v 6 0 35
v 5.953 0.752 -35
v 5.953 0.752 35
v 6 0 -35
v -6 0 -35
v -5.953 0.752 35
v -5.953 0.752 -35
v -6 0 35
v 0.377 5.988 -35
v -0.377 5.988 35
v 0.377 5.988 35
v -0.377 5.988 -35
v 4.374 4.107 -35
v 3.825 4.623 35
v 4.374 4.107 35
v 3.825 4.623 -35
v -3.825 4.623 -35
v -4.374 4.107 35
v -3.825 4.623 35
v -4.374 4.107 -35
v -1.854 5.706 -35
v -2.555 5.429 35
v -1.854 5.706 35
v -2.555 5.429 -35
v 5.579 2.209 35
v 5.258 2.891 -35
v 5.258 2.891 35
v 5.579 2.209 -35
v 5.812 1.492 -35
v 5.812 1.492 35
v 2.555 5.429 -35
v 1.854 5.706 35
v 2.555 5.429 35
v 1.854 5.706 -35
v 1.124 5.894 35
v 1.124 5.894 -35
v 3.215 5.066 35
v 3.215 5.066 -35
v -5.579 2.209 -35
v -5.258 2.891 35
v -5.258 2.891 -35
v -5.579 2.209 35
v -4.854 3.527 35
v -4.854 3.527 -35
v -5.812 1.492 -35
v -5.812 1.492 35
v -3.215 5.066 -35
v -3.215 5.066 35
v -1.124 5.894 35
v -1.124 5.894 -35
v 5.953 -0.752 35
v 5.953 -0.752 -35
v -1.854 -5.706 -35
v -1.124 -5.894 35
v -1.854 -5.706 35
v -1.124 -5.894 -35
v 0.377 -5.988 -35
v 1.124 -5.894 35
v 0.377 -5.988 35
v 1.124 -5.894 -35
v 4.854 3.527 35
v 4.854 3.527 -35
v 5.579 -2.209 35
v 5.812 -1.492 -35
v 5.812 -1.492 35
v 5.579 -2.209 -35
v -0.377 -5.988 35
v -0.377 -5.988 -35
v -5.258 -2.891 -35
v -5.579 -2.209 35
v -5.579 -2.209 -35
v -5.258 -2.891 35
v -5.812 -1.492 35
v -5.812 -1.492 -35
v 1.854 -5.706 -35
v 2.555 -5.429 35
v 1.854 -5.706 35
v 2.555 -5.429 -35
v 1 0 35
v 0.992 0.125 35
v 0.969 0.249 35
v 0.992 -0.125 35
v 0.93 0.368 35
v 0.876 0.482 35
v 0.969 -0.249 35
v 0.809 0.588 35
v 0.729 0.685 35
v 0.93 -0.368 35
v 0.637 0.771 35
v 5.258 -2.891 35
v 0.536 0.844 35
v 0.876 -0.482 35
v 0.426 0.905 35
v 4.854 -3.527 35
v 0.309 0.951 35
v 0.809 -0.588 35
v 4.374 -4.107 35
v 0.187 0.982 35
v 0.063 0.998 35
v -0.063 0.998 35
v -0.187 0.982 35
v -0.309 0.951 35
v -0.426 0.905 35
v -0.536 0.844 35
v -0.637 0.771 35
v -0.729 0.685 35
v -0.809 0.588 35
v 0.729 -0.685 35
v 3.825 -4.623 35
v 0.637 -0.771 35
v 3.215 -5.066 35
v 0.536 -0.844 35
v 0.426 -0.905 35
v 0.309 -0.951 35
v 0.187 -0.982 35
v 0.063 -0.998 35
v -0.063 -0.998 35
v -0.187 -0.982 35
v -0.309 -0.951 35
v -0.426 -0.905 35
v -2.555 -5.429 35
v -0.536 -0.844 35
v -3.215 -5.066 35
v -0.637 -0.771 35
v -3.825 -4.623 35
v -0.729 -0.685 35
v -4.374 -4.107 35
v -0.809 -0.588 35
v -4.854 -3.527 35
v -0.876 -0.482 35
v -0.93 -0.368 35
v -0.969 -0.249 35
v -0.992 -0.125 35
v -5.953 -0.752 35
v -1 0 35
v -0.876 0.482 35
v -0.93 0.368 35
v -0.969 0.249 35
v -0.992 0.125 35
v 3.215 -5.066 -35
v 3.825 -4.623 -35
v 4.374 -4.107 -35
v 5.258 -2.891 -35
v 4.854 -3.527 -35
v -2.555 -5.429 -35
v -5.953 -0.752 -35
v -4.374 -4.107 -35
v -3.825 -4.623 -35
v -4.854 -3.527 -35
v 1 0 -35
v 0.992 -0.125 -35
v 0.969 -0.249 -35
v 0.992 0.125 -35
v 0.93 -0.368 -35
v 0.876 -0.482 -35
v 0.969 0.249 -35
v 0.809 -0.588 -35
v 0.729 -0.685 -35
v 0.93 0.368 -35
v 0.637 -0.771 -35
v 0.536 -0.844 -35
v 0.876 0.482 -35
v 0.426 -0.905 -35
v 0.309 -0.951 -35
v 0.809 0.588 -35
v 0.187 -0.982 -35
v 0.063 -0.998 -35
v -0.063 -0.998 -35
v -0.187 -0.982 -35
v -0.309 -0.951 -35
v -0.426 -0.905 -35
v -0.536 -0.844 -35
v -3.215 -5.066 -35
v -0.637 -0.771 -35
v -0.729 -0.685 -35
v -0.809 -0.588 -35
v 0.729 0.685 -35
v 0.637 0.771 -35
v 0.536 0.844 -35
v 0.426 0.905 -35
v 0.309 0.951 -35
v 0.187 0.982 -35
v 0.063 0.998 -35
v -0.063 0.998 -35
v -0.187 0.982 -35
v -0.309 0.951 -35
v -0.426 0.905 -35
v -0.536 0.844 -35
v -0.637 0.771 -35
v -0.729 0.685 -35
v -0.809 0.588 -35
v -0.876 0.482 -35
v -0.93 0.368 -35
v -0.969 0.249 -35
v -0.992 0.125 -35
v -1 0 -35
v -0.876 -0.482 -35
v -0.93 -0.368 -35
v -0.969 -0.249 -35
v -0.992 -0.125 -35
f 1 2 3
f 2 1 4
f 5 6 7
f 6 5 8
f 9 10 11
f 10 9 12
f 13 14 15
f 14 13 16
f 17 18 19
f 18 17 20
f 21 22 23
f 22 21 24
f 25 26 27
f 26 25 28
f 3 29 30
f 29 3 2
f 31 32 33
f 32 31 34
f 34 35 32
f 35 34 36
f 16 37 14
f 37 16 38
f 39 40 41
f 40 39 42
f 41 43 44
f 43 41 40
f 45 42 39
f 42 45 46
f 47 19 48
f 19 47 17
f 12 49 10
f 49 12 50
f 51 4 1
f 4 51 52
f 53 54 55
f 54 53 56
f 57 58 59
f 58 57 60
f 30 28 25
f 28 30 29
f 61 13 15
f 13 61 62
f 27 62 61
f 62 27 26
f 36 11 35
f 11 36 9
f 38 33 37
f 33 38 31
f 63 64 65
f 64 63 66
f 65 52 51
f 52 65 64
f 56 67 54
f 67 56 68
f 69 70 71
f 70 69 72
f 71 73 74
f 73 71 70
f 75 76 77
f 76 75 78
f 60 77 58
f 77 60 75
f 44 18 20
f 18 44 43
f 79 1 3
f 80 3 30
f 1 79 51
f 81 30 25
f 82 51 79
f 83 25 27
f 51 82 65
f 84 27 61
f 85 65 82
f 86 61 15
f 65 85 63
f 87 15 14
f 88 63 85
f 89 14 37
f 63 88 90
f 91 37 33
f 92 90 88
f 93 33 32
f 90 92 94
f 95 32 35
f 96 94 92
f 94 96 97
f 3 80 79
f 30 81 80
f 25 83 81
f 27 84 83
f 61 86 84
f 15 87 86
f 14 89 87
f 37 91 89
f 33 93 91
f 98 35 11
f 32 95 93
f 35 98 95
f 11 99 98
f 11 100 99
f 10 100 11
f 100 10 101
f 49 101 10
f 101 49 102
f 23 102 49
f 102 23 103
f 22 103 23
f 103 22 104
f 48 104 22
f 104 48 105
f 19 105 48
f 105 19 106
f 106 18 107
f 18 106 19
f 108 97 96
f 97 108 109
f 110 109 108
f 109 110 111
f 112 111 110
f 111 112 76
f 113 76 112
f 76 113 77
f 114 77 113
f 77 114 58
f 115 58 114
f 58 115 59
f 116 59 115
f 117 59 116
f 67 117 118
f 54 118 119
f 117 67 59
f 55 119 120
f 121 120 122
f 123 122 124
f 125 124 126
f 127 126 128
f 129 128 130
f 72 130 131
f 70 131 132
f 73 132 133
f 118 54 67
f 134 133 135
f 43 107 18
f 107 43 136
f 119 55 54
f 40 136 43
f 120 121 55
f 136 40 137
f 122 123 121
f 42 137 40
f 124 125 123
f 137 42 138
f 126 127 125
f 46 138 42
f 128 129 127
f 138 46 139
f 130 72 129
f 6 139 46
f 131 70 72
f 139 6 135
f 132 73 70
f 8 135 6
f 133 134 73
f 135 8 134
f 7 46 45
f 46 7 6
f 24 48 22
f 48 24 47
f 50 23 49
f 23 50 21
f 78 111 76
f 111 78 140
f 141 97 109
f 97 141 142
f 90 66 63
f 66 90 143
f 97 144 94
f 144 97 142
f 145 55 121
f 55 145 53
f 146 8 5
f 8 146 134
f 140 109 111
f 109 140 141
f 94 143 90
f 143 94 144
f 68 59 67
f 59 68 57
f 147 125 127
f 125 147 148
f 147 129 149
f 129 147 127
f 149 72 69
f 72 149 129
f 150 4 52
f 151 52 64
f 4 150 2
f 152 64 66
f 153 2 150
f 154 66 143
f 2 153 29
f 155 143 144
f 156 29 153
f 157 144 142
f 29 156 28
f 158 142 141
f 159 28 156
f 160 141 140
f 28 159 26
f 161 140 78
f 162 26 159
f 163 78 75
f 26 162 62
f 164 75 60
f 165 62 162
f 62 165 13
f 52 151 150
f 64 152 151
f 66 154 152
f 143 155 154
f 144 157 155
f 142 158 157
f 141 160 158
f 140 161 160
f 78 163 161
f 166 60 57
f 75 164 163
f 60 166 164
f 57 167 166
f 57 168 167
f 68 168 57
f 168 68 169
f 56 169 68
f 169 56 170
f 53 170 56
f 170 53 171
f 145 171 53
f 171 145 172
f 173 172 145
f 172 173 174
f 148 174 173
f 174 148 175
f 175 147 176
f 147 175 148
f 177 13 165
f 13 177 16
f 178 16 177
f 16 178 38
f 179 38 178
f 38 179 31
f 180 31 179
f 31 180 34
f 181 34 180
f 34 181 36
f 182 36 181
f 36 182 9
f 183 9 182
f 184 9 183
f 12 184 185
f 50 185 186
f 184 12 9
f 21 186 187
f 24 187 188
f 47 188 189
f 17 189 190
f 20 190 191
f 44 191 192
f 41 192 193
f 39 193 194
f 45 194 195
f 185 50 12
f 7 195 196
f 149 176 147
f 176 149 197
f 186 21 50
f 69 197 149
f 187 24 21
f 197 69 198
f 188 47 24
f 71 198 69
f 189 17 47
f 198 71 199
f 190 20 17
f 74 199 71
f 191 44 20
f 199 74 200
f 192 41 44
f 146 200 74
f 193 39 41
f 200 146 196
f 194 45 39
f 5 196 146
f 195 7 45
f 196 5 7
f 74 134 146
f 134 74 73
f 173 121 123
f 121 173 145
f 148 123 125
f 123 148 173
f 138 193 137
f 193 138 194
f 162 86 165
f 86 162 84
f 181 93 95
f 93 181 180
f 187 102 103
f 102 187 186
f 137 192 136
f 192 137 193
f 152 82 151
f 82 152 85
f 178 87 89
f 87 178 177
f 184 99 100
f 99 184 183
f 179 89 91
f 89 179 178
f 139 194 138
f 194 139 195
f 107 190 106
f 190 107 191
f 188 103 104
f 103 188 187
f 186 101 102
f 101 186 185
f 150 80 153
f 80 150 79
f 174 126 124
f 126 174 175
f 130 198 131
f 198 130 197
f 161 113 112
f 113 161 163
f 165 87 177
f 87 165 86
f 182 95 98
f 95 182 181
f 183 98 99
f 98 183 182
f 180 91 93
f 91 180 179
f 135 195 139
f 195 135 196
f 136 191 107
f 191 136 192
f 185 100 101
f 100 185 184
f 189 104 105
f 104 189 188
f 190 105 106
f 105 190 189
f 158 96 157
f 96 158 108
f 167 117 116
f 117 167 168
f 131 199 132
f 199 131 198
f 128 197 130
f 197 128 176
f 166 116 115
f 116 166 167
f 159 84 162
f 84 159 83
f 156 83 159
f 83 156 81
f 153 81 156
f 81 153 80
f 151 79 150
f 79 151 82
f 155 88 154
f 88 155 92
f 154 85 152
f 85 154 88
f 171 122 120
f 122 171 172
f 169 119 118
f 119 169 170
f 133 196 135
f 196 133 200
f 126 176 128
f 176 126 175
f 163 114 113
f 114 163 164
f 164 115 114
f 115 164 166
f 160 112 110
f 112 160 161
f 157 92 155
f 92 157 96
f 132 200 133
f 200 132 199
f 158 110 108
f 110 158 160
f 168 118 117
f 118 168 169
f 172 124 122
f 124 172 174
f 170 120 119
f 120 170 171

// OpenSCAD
$fn = 50;


difference() {
	union() {
		translate(v = [0, 0, -35.0000000000]) {
			cylinder(h = 70, r = 6.0000000000);
		}
	}
	union() {
		translate(v = [0, 0, -100.0000000000]) {
			cylinder(h = 200, r = 1.0000000000);
		}
	}
}
